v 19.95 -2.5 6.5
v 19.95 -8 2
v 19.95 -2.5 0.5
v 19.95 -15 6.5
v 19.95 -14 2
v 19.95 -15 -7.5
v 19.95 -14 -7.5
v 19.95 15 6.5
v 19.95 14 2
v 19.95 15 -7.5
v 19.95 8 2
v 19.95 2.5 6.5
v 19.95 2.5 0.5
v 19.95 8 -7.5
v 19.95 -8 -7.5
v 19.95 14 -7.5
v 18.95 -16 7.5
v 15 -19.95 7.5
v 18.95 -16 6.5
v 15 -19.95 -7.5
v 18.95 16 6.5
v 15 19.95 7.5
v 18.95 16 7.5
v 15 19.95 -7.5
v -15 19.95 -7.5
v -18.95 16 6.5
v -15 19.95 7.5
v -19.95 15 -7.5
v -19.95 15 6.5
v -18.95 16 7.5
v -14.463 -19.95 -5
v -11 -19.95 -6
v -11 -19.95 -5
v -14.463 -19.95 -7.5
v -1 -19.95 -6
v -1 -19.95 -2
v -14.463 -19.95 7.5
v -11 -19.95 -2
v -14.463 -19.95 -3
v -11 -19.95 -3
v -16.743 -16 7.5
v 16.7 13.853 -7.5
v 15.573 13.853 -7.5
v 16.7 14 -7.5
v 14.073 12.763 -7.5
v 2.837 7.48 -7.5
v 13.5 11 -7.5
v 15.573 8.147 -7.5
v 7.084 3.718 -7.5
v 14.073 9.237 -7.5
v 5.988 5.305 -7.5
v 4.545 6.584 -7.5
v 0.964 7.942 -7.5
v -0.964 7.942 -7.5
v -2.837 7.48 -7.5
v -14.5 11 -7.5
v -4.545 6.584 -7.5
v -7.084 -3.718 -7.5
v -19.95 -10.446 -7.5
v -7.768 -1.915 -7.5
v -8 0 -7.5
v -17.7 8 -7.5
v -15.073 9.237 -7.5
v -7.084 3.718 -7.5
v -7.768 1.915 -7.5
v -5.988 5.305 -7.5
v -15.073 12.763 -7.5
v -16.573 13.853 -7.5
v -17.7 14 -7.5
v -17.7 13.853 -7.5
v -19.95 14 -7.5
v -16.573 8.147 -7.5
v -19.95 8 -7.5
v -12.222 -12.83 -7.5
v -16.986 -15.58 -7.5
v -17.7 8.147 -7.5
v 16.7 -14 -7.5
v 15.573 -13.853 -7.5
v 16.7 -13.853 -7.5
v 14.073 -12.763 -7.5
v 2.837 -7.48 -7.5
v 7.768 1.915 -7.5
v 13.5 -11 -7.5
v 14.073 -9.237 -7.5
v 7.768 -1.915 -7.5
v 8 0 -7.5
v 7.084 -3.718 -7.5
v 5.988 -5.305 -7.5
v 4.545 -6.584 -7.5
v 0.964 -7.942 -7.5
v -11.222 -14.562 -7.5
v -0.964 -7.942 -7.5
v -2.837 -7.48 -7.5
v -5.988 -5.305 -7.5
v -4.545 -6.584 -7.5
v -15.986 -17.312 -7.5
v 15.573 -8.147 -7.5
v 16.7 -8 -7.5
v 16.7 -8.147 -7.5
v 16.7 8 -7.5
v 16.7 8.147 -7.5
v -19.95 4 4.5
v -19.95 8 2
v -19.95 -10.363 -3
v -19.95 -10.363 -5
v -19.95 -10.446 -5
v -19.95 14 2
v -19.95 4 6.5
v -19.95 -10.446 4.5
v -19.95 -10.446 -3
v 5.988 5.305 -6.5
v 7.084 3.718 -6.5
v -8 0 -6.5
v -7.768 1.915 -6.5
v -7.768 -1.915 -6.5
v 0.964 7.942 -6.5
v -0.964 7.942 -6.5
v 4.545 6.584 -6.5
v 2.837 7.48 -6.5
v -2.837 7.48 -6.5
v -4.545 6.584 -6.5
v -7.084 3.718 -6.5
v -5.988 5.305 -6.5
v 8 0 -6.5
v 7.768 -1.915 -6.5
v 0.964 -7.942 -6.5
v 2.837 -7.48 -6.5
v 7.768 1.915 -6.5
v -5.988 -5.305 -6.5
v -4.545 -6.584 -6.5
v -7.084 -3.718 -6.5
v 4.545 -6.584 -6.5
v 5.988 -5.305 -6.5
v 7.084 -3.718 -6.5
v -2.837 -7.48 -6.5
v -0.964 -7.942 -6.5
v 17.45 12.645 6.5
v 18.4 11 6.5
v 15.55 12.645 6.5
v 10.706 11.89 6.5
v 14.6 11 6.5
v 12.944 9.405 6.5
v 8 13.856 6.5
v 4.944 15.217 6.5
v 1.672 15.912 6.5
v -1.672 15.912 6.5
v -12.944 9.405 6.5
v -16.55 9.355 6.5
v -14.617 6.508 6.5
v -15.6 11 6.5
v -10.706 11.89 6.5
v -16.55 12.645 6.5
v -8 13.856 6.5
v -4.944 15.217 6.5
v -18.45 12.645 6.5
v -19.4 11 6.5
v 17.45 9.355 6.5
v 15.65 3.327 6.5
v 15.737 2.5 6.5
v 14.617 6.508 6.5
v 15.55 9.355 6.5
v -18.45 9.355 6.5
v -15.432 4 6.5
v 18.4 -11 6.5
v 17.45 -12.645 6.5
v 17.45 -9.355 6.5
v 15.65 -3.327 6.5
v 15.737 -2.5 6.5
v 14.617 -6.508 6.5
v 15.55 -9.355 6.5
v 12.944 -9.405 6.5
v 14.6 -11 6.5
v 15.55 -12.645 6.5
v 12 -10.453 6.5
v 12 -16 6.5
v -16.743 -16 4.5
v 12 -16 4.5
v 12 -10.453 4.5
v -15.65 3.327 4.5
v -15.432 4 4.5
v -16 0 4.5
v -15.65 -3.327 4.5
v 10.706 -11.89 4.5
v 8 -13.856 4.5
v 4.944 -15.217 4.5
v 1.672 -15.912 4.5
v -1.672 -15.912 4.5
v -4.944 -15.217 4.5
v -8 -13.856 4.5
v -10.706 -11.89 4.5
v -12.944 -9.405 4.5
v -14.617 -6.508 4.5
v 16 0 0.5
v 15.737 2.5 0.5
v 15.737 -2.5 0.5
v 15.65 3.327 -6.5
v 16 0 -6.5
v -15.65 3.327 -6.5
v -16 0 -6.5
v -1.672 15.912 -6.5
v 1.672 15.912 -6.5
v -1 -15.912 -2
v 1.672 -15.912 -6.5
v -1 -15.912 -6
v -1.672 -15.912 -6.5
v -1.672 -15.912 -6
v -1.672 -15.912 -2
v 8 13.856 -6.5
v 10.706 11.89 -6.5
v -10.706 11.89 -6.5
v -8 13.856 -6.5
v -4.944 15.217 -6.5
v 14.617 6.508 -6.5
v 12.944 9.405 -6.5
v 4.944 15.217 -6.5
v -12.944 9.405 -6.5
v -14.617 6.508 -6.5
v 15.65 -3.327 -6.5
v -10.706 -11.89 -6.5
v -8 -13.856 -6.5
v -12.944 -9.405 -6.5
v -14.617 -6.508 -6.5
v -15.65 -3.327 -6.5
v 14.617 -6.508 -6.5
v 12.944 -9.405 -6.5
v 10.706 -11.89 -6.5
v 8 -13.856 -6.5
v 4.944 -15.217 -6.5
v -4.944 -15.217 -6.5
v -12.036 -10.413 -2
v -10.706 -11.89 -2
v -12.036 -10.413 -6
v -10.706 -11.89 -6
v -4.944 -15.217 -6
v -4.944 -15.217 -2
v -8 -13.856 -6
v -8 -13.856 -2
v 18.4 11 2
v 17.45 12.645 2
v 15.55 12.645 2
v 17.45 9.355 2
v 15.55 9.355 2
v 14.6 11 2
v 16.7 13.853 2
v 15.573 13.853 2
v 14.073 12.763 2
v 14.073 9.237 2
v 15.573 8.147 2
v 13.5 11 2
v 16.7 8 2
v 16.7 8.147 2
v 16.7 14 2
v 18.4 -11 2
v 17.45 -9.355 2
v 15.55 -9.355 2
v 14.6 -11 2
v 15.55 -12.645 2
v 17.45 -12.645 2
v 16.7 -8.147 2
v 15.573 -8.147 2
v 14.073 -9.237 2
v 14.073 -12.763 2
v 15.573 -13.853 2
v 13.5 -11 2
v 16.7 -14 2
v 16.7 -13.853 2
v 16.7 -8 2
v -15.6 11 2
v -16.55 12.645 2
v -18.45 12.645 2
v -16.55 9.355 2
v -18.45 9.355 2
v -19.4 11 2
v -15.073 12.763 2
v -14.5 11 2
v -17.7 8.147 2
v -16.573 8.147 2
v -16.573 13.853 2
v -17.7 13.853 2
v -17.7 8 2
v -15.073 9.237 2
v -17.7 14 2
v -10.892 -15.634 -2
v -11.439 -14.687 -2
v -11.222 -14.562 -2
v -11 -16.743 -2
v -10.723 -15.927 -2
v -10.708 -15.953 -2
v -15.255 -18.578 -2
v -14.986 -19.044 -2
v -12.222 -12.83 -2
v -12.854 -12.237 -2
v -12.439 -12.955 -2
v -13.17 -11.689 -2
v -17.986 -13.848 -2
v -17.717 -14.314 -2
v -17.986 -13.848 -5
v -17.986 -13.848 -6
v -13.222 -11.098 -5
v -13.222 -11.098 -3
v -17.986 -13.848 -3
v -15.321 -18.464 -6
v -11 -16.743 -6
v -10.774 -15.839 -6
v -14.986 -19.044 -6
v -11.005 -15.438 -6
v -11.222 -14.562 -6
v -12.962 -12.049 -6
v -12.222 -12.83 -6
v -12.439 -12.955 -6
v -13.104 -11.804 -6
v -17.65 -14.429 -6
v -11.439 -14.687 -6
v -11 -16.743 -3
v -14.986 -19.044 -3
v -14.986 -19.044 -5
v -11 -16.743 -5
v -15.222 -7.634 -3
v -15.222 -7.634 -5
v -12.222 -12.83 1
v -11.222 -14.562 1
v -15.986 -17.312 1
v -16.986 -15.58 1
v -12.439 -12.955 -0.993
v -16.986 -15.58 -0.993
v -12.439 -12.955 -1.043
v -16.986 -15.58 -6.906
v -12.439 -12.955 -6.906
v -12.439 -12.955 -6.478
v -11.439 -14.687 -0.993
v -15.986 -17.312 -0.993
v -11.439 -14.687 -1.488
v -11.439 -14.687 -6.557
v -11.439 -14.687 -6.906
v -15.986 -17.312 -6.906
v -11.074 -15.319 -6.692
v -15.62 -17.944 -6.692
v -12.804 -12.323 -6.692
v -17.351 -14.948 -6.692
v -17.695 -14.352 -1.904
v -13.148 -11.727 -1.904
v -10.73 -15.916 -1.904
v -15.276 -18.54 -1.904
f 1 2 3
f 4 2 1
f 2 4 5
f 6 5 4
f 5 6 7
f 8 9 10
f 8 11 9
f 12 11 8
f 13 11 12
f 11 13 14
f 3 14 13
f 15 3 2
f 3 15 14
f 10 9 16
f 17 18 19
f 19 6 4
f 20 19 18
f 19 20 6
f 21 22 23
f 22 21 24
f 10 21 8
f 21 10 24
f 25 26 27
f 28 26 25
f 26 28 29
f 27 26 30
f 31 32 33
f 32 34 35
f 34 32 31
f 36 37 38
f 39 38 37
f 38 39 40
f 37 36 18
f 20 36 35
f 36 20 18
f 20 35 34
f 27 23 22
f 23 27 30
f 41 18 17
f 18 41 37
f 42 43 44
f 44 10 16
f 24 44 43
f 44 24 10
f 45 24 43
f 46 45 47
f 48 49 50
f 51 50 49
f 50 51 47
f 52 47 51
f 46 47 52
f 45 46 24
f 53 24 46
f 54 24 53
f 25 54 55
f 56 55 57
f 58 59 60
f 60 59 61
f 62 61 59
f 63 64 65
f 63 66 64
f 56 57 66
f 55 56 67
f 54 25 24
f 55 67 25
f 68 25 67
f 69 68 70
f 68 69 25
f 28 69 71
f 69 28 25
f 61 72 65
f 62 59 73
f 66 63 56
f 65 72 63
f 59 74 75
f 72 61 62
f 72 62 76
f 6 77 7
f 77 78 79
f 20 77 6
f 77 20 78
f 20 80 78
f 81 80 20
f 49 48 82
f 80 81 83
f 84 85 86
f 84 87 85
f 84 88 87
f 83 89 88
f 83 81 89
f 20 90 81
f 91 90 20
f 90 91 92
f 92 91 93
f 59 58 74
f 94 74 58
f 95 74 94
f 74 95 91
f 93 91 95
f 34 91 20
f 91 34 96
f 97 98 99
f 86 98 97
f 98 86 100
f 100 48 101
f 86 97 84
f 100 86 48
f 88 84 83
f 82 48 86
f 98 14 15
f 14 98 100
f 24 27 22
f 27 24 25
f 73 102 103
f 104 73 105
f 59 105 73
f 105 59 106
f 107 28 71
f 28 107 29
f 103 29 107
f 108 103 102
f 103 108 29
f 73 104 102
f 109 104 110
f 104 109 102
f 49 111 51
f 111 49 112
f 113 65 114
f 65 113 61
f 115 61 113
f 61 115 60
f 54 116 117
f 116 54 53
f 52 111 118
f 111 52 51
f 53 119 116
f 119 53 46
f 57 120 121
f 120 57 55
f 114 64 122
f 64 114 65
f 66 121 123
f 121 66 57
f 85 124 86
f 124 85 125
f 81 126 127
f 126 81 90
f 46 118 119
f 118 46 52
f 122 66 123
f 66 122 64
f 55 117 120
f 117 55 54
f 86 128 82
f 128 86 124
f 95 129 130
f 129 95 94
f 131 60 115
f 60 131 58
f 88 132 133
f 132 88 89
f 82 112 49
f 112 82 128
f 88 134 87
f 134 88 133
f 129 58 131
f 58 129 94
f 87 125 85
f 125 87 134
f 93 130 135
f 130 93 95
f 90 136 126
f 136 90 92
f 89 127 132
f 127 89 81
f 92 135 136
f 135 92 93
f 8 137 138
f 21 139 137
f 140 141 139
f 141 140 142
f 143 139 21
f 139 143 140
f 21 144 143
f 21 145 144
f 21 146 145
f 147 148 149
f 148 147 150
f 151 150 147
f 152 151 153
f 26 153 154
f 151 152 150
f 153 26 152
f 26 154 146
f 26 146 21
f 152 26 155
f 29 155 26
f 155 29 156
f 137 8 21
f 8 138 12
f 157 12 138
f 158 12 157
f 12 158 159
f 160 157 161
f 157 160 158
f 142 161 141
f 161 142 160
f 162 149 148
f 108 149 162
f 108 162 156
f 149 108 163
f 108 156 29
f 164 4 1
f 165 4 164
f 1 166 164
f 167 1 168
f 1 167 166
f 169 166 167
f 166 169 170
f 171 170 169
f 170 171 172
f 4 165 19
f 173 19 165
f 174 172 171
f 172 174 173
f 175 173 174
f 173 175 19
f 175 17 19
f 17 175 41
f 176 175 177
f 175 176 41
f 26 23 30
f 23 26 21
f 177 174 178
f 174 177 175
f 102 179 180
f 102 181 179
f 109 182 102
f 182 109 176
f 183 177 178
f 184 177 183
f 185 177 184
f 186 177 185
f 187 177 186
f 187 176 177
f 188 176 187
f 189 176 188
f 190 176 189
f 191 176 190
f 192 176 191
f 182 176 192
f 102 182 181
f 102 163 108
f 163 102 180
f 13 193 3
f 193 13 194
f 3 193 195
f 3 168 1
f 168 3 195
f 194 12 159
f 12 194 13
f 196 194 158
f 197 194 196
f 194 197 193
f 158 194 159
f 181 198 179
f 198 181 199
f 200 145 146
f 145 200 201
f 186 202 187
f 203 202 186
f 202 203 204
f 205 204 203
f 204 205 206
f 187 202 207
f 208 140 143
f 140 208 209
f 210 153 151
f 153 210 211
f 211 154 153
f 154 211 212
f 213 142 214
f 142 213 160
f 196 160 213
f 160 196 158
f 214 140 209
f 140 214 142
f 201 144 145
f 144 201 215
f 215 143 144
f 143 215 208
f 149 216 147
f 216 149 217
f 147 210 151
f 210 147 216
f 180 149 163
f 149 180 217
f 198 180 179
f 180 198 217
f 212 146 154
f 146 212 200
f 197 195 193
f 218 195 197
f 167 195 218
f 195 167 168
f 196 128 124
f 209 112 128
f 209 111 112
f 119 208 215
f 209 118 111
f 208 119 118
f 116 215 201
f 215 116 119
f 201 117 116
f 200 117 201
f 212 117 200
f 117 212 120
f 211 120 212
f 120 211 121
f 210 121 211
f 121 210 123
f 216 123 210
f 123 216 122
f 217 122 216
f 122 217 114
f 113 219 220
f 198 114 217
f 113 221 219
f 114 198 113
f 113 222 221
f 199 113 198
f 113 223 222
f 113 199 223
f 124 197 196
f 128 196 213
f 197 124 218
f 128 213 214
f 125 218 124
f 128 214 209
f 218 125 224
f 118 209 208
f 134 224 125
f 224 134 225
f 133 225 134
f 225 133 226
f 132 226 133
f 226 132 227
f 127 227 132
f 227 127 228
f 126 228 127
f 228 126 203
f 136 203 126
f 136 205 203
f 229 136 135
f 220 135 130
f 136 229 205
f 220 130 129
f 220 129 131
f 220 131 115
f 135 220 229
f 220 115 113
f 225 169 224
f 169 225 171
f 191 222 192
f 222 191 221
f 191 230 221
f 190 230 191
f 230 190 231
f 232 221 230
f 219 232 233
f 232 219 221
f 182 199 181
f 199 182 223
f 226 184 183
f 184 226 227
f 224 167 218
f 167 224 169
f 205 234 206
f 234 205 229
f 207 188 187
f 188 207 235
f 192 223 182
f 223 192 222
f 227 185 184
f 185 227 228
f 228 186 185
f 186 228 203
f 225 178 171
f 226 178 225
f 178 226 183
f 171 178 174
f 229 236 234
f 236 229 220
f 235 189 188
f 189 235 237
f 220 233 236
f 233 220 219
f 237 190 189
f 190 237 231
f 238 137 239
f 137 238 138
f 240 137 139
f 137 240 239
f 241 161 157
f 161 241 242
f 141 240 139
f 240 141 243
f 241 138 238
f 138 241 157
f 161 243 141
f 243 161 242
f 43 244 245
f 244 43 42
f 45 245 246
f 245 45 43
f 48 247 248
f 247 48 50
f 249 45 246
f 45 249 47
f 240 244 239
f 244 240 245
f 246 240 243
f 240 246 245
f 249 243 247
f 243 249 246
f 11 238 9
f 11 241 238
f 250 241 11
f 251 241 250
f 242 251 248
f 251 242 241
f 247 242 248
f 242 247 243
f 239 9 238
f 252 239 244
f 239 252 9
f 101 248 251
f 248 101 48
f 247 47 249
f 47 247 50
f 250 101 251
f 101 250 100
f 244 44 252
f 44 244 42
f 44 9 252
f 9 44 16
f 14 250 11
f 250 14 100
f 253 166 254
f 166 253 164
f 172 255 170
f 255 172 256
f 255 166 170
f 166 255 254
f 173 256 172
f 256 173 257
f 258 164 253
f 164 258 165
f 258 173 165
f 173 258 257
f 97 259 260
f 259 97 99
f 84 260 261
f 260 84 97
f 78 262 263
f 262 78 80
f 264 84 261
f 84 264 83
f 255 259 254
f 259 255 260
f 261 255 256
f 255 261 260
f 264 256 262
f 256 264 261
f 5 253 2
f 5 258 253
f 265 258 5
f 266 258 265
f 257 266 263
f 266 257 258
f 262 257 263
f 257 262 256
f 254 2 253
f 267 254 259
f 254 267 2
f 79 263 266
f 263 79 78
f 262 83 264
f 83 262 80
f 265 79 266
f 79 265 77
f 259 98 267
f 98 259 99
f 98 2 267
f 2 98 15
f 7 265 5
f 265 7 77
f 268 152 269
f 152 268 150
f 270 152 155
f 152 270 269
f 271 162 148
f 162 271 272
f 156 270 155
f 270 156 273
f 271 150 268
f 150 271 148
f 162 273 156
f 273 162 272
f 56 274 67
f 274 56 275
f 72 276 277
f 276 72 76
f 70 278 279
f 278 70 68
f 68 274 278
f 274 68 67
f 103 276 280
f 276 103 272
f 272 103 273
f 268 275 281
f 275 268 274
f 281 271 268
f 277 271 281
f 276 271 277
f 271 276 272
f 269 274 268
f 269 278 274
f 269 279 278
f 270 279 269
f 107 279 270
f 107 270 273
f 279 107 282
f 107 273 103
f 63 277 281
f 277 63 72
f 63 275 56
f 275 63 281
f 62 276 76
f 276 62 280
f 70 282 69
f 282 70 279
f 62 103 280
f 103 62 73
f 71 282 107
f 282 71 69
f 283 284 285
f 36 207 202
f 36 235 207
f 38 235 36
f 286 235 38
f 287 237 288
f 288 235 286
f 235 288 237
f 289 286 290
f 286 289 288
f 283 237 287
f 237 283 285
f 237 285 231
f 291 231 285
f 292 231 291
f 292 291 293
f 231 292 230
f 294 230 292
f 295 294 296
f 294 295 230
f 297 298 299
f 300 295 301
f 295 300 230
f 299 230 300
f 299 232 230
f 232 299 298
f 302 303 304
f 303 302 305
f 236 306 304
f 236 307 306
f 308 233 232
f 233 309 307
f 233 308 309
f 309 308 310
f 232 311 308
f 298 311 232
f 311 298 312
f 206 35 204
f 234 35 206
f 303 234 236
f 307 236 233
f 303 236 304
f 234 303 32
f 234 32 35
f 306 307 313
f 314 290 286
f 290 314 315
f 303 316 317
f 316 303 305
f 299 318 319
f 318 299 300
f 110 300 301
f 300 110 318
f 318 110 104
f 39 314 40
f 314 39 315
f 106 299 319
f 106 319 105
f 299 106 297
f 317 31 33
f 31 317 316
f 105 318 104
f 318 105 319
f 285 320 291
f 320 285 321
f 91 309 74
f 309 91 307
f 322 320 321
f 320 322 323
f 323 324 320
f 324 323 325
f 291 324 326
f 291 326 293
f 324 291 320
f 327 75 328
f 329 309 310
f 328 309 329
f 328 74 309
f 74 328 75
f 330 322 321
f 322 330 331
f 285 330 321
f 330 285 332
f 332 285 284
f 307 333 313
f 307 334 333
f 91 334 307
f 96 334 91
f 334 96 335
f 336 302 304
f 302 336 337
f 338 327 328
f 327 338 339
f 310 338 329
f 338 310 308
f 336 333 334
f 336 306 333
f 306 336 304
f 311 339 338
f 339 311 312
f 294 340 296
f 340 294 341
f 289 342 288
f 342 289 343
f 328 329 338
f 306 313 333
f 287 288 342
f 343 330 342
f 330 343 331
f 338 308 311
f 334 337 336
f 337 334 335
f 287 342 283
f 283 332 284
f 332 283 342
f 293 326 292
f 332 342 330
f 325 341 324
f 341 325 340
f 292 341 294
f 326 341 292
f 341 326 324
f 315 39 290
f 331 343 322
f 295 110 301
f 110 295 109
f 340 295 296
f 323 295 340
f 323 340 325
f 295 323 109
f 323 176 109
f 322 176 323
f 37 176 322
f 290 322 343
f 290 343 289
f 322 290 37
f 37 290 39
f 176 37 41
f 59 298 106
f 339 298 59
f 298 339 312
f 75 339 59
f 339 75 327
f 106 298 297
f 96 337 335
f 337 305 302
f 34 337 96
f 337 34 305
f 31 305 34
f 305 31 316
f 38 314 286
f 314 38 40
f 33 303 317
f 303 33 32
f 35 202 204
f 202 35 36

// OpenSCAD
difference () {
  union () {
    minkowski () {
      rotate (a=45.0, v=[0, 0, 1]) {
        cube ([7, 7, 5], center=true);
      }
      cube ([30, 30, 10], center=true);
    }
  }
  cylinder (h=19, r=8, center=true);
  translate ([0, 0, 7]) {
    cube ([40, 32, 1], center=true);
  }
  translate ([-4, -6, 5.5]) {
    cube ([32, 20, 2], center=true);
  }
  translate ([17.5, 0, 3.5]) {
    cube ([5, 5, 6], center=true);
  }
  translate ([0, 0, 0.5]) {
    cylinder (h=14, r=16, center=true);
  }
  translate ([16.5, 11, ]) {
    cylinder (h=15, r=1.9, center=true);
  }
  translate ([16.5, 11, -5]) {
    cylinder (h=14, r=3, center=true);
  }
  translate ([19.7, 11, -5]) {
    cube ([6, 6, 14], center=true);
  }
  translate ([16.5, -11, ]) {
    cylinder (h=15, r=1.9, center=true);
  }
  translate ([16.5, -11, -5]) {
    cylinder (h=14, r=3, center=true);
  }
  translate ([19.7, -11, -5]) {
    cube ([6, 6, 14], center=true);
  }
  translate ([-17.5, 11, ]) {
    cylinder (h=15, r=1.9, center=true);
  }
  translate ([-17.5, 11, -5]) {
    cylinder (h=14, r=3, center=true);
  }
  translate ([-20.7, 11, -5]) {
    cube ([6, 6, 14], center=true);
  }
  rotate (a=29.999999999999996, v=[0, 0, 1]) {
    translate ([-20, -6, -4]) {
      cube ([15, 6, 4], center=true);
    }
  }
  rotate (a=29.999999999999996, v=[0, 0, 1]) {
    translate ([-20, -6, -4]) {
      cube ([6, 14, 2], center=true);
    }
  }
  rotate (a=29.999999999999996, v=[0, 0, 1]) {
    translate ([-20, -6, -4]) {
      cube ([6, 2, 10], center=true);
    }
  }
  rotate (a=29.999999999999996, v=[0, 0, 1]) {
    translate ([-20, -6, -4]) {
      rotate (a=90.0, v=[0, 1, 0]) {
        cylinder (h=5.5, r=3.2, center=true);
      }
    }
  }
  rotate (a=29.999999999999996, v=[0, 0, 1]) {
    translate ([-25.5, -6, ]) {
      cube ([6, 15, 15], center=true);
    }
  }
  translate ([-6, -16, -4]) {
    cube ([10, 10, 4], center=true);
  }
}
